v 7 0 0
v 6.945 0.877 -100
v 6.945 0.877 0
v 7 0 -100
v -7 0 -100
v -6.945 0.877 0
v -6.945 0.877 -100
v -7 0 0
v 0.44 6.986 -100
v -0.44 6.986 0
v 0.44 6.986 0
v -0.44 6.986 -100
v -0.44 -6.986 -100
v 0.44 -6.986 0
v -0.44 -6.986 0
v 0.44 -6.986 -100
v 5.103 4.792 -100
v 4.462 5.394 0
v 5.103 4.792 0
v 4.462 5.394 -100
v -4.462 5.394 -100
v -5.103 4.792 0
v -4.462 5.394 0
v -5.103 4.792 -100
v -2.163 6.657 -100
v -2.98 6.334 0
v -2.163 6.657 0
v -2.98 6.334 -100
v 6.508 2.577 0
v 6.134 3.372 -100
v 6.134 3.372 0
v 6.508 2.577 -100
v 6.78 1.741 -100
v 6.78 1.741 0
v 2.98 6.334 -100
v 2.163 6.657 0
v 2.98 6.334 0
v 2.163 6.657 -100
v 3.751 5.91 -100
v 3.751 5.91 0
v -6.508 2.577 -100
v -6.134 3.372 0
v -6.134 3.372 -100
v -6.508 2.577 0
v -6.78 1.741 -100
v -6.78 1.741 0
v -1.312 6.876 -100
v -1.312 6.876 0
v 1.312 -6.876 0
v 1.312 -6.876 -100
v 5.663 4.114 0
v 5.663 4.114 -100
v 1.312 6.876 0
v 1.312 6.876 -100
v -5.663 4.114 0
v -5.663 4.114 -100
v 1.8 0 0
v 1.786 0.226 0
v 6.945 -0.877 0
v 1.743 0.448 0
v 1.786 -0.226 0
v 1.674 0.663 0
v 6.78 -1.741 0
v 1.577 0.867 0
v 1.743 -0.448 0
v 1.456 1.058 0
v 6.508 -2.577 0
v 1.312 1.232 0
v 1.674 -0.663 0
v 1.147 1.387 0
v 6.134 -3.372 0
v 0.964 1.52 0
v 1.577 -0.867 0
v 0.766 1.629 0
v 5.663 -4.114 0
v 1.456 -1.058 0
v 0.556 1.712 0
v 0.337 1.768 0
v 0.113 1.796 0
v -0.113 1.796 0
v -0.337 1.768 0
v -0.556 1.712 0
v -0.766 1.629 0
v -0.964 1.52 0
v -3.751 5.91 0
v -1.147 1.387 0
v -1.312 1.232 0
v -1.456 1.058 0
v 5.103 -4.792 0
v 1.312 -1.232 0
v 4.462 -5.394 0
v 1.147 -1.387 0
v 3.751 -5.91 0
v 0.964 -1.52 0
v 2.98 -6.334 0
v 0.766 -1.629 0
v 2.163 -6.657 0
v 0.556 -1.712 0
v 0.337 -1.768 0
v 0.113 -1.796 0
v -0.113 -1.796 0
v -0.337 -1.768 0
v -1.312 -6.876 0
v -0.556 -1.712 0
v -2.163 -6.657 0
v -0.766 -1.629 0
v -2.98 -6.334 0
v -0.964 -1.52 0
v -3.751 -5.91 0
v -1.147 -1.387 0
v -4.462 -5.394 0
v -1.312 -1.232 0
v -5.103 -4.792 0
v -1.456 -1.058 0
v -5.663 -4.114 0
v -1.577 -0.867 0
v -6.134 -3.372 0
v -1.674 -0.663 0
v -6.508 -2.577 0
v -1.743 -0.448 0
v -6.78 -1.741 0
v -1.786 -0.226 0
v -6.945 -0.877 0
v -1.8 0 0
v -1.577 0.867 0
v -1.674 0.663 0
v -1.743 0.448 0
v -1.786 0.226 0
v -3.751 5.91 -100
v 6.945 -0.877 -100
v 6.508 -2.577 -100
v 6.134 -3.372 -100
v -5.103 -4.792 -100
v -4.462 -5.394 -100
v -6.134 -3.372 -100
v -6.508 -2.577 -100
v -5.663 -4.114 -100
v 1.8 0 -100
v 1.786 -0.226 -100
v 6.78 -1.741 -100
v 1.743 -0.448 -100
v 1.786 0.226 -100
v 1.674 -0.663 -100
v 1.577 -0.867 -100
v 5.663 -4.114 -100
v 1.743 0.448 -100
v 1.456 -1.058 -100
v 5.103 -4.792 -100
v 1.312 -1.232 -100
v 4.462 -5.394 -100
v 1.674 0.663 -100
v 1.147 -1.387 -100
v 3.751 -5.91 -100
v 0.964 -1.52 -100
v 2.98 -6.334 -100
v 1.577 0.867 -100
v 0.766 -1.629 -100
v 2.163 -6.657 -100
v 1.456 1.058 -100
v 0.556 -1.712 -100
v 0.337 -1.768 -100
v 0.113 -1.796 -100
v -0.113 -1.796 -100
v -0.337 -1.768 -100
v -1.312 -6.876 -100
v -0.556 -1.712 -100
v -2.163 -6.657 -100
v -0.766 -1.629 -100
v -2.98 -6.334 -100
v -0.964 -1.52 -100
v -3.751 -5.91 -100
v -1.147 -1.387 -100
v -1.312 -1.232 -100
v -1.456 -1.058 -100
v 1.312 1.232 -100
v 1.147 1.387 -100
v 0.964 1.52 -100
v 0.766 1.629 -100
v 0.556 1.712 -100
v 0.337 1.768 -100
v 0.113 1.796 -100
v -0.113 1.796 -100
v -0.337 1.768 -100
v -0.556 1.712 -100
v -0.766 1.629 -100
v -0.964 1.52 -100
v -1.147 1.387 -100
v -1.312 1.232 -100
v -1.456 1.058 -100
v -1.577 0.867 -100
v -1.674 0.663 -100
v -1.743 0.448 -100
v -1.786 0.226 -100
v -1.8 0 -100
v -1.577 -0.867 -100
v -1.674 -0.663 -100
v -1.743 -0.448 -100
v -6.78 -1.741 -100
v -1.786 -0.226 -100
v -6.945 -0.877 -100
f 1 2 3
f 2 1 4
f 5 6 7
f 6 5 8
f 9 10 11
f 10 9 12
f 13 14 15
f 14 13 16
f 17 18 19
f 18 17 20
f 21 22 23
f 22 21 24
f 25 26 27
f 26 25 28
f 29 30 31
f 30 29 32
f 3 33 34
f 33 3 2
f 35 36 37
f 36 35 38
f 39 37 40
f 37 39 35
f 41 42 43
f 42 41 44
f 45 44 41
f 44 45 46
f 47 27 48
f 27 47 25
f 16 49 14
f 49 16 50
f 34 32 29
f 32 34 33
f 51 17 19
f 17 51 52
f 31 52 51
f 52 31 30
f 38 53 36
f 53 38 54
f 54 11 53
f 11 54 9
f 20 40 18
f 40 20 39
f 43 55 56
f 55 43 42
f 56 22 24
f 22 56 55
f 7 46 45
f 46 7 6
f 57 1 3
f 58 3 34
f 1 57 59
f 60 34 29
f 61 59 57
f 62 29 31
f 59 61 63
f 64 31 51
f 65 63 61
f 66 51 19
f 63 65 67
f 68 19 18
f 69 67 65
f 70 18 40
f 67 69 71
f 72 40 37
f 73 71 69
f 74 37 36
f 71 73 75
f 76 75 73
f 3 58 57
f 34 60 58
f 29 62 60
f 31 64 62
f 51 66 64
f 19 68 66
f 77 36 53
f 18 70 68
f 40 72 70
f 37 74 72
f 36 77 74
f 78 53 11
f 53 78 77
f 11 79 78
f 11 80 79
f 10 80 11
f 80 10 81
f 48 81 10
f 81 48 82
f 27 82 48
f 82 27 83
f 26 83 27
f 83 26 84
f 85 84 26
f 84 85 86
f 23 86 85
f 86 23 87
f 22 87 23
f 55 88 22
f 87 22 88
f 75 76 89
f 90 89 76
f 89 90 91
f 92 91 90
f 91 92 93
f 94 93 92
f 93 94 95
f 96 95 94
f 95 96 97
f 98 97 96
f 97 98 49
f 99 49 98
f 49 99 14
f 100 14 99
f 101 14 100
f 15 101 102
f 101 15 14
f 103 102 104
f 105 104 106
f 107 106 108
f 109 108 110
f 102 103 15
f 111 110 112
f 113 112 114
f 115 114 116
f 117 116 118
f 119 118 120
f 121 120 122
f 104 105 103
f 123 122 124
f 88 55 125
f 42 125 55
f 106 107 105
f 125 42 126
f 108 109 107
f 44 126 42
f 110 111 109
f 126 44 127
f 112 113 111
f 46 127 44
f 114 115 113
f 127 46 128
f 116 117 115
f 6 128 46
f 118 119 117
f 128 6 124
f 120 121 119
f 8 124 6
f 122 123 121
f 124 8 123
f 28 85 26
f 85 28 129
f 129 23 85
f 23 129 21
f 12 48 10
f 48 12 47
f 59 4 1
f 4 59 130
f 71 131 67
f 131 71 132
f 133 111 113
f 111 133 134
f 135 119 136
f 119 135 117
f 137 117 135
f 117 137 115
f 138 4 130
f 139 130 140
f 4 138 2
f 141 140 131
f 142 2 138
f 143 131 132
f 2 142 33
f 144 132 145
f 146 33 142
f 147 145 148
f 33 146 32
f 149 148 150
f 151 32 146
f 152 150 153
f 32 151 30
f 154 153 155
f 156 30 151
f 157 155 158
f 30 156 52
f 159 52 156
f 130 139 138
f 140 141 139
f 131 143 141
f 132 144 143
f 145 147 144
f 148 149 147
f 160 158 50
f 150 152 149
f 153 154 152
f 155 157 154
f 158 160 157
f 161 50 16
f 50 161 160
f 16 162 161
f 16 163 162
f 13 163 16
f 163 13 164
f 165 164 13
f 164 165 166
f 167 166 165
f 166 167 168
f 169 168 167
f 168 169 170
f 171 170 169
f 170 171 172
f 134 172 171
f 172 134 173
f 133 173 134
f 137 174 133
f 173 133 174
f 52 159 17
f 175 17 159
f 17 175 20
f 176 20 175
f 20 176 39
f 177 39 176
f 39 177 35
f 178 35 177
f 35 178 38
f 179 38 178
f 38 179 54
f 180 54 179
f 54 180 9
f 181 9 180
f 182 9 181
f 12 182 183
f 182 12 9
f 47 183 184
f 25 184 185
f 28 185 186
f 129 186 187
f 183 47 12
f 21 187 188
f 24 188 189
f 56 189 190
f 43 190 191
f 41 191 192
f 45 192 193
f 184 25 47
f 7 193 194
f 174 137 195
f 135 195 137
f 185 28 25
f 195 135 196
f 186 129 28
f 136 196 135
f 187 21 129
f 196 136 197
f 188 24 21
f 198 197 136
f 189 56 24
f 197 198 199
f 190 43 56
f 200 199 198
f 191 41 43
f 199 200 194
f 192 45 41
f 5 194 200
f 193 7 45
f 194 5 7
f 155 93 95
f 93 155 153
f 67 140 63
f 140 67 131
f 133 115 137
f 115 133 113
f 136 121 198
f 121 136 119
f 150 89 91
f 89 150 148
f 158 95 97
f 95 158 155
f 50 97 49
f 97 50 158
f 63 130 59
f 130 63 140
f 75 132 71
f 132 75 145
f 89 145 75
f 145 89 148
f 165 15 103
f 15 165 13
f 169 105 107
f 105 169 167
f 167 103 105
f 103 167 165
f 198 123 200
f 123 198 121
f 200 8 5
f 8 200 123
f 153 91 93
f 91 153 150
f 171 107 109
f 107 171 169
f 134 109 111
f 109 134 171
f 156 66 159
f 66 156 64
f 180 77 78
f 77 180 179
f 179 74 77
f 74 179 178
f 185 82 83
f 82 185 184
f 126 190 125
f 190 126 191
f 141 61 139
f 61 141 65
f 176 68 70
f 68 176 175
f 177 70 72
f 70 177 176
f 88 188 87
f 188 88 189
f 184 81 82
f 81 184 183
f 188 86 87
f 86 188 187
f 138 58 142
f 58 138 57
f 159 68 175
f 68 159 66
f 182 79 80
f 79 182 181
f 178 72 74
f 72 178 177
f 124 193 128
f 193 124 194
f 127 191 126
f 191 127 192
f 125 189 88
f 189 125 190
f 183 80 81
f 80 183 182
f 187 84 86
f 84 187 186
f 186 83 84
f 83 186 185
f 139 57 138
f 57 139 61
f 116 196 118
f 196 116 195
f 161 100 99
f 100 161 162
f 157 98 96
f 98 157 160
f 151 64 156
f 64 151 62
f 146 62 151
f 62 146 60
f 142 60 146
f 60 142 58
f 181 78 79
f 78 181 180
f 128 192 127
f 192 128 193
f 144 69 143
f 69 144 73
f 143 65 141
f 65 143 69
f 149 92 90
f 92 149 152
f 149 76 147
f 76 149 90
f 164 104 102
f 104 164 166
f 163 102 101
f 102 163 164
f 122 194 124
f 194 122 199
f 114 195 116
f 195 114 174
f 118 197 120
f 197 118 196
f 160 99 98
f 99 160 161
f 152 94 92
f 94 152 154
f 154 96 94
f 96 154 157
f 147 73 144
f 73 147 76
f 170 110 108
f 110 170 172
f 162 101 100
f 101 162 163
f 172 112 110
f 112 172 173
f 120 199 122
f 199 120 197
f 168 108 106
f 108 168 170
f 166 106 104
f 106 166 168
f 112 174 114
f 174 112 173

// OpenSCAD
$fn = 50;


difference() {
	union() {
		translate(v = [0, 0, -100.0000000000]) {
			cylinder(h = 100, r = 7.0000000000);
		}
		cylinder(h = 0, r = 17.0000000000);
	}
	union() {
		#translate(v = [0, 0, -100]) {
			cylinder(h = 100, r = 1.8000000000);
		}
	}
}
